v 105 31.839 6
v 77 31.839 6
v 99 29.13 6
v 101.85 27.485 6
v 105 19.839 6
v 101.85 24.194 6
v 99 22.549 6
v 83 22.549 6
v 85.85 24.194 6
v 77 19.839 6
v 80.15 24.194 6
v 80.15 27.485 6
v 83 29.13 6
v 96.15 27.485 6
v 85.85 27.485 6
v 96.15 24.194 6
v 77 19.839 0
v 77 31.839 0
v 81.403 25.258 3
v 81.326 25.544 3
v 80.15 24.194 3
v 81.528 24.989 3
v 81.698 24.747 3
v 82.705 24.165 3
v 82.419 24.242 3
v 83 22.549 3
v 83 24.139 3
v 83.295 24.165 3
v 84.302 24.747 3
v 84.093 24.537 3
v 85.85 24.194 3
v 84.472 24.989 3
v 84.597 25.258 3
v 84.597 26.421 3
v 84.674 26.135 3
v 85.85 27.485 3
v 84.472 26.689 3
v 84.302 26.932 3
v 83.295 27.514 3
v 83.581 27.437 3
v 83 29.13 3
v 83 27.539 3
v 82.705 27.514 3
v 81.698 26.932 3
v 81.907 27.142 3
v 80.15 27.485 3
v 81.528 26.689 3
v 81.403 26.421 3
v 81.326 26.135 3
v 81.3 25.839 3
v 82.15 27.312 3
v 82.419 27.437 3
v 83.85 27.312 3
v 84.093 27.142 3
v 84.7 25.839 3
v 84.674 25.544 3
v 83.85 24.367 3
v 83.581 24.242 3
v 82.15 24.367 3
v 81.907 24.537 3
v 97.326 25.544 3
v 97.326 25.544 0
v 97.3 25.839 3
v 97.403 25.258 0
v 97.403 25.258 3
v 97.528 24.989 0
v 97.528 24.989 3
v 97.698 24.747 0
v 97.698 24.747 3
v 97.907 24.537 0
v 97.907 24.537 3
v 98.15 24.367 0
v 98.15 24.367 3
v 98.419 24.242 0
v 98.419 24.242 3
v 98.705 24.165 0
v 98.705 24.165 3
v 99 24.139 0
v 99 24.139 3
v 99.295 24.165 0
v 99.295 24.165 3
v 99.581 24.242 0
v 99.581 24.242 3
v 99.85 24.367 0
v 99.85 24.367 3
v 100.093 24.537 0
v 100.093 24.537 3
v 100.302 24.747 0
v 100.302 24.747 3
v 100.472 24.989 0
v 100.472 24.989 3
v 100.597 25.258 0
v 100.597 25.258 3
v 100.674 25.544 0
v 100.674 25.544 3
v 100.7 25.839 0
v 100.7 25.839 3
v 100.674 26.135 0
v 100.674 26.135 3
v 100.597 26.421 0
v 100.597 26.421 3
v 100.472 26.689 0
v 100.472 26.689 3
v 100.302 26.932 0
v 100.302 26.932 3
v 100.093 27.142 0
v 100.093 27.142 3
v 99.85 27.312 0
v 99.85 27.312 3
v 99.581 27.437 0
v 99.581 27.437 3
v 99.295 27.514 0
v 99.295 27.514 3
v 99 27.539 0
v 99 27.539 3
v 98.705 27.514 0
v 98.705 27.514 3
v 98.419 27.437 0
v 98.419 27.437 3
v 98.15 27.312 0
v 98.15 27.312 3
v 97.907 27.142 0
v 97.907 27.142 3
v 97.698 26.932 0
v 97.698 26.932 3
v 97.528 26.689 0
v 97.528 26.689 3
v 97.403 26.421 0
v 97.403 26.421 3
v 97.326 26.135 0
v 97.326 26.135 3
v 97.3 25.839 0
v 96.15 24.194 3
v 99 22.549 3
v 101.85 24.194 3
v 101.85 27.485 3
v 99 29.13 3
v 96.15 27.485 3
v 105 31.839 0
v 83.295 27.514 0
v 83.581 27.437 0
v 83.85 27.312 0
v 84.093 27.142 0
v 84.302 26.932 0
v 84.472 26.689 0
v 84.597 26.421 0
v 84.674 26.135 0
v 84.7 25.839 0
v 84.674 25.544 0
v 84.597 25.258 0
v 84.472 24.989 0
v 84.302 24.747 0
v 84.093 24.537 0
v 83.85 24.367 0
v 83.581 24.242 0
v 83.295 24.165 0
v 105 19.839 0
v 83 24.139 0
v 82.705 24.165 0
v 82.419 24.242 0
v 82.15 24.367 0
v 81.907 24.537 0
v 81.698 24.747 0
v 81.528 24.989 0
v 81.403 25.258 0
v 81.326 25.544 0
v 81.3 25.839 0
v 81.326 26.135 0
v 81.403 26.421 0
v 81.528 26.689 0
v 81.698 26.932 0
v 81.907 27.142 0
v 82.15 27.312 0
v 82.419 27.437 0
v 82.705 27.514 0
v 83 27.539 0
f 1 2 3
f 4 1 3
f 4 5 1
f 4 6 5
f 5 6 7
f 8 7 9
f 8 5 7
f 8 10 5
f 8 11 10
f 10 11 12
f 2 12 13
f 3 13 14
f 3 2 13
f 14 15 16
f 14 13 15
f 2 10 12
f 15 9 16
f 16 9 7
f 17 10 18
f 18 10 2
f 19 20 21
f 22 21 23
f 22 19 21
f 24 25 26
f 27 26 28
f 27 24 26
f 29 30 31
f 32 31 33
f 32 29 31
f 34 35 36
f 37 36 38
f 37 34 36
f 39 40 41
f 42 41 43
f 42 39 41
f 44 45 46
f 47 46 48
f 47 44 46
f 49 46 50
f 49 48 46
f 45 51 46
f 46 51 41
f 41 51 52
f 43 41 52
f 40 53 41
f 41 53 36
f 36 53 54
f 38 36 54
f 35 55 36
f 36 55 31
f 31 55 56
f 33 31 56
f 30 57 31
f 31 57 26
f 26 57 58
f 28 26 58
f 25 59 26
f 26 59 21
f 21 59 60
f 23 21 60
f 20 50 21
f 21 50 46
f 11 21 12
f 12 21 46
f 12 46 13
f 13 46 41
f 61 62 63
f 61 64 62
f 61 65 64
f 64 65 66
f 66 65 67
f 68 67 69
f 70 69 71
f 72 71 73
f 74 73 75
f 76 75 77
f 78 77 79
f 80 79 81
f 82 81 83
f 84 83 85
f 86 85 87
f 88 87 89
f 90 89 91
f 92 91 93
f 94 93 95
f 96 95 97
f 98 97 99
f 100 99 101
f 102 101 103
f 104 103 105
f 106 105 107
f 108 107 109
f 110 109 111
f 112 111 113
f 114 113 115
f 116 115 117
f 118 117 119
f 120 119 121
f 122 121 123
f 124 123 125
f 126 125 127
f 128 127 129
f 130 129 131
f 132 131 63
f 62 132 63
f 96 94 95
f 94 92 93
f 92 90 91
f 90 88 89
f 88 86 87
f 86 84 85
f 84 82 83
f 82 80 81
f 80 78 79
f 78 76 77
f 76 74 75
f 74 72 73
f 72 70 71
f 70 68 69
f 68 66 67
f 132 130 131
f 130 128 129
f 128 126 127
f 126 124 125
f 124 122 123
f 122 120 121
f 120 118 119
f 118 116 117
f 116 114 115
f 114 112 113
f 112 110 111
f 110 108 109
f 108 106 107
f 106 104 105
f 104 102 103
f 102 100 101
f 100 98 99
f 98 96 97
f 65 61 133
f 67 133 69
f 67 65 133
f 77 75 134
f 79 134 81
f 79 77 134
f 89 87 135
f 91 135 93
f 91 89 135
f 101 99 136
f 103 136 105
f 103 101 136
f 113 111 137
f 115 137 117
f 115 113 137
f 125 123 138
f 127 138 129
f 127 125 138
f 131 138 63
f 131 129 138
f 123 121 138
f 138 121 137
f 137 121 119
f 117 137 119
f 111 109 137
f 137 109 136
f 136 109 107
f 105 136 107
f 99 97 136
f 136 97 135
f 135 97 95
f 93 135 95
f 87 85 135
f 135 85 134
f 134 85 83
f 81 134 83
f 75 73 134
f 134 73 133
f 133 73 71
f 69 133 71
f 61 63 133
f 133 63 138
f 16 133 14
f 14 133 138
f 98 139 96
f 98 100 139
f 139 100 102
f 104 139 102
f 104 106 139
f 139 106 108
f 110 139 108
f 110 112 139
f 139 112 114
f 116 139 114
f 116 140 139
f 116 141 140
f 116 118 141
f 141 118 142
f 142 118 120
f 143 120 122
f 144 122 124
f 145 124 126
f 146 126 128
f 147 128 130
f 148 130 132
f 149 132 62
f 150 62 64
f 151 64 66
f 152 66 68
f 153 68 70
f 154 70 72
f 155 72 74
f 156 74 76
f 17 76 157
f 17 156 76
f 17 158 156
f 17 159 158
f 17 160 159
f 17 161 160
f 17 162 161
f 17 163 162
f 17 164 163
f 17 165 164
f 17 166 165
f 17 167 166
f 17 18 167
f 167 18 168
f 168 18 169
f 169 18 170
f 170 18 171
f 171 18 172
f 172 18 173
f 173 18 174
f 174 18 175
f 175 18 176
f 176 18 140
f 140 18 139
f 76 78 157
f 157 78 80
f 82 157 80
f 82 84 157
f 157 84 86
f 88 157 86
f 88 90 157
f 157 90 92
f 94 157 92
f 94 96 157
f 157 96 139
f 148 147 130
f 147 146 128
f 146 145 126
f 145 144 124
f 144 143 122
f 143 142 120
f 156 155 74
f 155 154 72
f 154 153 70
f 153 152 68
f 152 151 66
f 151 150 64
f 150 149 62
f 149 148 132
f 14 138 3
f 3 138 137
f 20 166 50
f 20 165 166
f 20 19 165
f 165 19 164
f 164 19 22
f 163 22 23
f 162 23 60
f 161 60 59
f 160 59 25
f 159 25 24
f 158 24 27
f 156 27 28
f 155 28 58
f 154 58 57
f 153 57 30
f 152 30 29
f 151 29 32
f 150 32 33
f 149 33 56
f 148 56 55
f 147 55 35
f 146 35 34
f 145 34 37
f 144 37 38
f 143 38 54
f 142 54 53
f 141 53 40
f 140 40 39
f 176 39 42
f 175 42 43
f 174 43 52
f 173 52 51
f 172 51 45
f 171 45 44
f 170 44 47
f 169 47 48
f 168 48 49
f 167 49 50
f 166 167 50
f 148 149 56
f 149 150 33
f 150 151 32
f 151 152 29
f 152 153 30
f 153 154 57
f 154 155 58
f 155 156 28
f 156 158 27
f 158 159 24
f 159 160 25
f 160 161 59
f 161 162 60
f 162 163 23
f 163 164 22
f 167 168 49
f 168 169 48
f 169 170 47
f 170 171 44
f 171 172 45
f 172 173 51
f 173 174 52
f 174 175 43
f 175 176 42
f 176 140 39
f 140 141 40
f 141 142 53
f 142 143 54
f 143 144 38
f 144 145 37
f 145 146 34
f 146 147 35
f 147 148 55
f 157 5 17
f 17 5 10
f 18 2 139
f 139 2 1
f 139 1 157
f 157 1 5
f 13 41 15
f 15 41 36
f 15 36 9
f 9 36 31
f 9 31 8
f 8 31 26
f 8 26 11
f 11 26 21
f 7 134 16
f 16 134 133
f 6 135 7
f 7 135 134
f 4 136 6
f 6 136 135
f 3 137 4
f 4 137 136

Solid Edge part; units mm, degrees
sketch "Sketch1" plane through (0, 0, 0) normal (0, 0, 1) x (1, 0, 0)
  circle A0 centre (99, 25.8394) radius 1.7
  line L0 (77, 19.8394) -> (105, 19.8394)
  line L1 (105, 19.8394) -> (105, 31.8394)
  line L2 (105, 31.8394) -> (77, 31.8394)
  line L3 (77, 31.8394) -> (77, 19.8394)
  circle A1 centre (83, 25.8394) radius 1.7
  dimension "D1" = 12
  dimension "D2" = 6
  dimension "D3" = 6
  dimension "D4" = 28
extrude "Protrusion1" add sketch "Sketch1" along normal blind 6
sketch "Sketch2" plane through (89, 25.8394, 6) normal (0, 0, 1) x (1, 0, 0)
  line L0 (7.15, 1.6454) -> (10, 3.2909)
  line L1 (10, 3.2909) -> (12.85, 1.6454)
  line L2 (12.85, 1.6454) -> (12.85, -1.6454)
  line L3 (12.85, -1.6454) -> (10, -3.2909)
  line L4 (10, -3.2909) -> (7.15, -1.6454)
  line L5 (7.15, -1.6454) -> (7.15, 1.6454)
  line L6 (-8.85, 1.6454) -> (-6, 3.2909)
  line L7 (-6, 3.2909) -> (-3.15, 1.6454)
  line L8 (-3.15, 1.6454) -> (-3.15, -1.6454)
  line L9 (-3.15, -1.6454) -> (-6, -3.2909)
  line L10 (-6, -3.2909) -> (-8.85, -1.6454)
  line L11 (-8.85, -1.6454) -> (-8.85, 1.6454)
  dimension "D1" = 0.15
  dimension "D2" = 0.15
extrude "ExtrudedCutout_1" cut sketch "Sketch2" against normal blind 3
properties material "ABS Plastic, high impact"
